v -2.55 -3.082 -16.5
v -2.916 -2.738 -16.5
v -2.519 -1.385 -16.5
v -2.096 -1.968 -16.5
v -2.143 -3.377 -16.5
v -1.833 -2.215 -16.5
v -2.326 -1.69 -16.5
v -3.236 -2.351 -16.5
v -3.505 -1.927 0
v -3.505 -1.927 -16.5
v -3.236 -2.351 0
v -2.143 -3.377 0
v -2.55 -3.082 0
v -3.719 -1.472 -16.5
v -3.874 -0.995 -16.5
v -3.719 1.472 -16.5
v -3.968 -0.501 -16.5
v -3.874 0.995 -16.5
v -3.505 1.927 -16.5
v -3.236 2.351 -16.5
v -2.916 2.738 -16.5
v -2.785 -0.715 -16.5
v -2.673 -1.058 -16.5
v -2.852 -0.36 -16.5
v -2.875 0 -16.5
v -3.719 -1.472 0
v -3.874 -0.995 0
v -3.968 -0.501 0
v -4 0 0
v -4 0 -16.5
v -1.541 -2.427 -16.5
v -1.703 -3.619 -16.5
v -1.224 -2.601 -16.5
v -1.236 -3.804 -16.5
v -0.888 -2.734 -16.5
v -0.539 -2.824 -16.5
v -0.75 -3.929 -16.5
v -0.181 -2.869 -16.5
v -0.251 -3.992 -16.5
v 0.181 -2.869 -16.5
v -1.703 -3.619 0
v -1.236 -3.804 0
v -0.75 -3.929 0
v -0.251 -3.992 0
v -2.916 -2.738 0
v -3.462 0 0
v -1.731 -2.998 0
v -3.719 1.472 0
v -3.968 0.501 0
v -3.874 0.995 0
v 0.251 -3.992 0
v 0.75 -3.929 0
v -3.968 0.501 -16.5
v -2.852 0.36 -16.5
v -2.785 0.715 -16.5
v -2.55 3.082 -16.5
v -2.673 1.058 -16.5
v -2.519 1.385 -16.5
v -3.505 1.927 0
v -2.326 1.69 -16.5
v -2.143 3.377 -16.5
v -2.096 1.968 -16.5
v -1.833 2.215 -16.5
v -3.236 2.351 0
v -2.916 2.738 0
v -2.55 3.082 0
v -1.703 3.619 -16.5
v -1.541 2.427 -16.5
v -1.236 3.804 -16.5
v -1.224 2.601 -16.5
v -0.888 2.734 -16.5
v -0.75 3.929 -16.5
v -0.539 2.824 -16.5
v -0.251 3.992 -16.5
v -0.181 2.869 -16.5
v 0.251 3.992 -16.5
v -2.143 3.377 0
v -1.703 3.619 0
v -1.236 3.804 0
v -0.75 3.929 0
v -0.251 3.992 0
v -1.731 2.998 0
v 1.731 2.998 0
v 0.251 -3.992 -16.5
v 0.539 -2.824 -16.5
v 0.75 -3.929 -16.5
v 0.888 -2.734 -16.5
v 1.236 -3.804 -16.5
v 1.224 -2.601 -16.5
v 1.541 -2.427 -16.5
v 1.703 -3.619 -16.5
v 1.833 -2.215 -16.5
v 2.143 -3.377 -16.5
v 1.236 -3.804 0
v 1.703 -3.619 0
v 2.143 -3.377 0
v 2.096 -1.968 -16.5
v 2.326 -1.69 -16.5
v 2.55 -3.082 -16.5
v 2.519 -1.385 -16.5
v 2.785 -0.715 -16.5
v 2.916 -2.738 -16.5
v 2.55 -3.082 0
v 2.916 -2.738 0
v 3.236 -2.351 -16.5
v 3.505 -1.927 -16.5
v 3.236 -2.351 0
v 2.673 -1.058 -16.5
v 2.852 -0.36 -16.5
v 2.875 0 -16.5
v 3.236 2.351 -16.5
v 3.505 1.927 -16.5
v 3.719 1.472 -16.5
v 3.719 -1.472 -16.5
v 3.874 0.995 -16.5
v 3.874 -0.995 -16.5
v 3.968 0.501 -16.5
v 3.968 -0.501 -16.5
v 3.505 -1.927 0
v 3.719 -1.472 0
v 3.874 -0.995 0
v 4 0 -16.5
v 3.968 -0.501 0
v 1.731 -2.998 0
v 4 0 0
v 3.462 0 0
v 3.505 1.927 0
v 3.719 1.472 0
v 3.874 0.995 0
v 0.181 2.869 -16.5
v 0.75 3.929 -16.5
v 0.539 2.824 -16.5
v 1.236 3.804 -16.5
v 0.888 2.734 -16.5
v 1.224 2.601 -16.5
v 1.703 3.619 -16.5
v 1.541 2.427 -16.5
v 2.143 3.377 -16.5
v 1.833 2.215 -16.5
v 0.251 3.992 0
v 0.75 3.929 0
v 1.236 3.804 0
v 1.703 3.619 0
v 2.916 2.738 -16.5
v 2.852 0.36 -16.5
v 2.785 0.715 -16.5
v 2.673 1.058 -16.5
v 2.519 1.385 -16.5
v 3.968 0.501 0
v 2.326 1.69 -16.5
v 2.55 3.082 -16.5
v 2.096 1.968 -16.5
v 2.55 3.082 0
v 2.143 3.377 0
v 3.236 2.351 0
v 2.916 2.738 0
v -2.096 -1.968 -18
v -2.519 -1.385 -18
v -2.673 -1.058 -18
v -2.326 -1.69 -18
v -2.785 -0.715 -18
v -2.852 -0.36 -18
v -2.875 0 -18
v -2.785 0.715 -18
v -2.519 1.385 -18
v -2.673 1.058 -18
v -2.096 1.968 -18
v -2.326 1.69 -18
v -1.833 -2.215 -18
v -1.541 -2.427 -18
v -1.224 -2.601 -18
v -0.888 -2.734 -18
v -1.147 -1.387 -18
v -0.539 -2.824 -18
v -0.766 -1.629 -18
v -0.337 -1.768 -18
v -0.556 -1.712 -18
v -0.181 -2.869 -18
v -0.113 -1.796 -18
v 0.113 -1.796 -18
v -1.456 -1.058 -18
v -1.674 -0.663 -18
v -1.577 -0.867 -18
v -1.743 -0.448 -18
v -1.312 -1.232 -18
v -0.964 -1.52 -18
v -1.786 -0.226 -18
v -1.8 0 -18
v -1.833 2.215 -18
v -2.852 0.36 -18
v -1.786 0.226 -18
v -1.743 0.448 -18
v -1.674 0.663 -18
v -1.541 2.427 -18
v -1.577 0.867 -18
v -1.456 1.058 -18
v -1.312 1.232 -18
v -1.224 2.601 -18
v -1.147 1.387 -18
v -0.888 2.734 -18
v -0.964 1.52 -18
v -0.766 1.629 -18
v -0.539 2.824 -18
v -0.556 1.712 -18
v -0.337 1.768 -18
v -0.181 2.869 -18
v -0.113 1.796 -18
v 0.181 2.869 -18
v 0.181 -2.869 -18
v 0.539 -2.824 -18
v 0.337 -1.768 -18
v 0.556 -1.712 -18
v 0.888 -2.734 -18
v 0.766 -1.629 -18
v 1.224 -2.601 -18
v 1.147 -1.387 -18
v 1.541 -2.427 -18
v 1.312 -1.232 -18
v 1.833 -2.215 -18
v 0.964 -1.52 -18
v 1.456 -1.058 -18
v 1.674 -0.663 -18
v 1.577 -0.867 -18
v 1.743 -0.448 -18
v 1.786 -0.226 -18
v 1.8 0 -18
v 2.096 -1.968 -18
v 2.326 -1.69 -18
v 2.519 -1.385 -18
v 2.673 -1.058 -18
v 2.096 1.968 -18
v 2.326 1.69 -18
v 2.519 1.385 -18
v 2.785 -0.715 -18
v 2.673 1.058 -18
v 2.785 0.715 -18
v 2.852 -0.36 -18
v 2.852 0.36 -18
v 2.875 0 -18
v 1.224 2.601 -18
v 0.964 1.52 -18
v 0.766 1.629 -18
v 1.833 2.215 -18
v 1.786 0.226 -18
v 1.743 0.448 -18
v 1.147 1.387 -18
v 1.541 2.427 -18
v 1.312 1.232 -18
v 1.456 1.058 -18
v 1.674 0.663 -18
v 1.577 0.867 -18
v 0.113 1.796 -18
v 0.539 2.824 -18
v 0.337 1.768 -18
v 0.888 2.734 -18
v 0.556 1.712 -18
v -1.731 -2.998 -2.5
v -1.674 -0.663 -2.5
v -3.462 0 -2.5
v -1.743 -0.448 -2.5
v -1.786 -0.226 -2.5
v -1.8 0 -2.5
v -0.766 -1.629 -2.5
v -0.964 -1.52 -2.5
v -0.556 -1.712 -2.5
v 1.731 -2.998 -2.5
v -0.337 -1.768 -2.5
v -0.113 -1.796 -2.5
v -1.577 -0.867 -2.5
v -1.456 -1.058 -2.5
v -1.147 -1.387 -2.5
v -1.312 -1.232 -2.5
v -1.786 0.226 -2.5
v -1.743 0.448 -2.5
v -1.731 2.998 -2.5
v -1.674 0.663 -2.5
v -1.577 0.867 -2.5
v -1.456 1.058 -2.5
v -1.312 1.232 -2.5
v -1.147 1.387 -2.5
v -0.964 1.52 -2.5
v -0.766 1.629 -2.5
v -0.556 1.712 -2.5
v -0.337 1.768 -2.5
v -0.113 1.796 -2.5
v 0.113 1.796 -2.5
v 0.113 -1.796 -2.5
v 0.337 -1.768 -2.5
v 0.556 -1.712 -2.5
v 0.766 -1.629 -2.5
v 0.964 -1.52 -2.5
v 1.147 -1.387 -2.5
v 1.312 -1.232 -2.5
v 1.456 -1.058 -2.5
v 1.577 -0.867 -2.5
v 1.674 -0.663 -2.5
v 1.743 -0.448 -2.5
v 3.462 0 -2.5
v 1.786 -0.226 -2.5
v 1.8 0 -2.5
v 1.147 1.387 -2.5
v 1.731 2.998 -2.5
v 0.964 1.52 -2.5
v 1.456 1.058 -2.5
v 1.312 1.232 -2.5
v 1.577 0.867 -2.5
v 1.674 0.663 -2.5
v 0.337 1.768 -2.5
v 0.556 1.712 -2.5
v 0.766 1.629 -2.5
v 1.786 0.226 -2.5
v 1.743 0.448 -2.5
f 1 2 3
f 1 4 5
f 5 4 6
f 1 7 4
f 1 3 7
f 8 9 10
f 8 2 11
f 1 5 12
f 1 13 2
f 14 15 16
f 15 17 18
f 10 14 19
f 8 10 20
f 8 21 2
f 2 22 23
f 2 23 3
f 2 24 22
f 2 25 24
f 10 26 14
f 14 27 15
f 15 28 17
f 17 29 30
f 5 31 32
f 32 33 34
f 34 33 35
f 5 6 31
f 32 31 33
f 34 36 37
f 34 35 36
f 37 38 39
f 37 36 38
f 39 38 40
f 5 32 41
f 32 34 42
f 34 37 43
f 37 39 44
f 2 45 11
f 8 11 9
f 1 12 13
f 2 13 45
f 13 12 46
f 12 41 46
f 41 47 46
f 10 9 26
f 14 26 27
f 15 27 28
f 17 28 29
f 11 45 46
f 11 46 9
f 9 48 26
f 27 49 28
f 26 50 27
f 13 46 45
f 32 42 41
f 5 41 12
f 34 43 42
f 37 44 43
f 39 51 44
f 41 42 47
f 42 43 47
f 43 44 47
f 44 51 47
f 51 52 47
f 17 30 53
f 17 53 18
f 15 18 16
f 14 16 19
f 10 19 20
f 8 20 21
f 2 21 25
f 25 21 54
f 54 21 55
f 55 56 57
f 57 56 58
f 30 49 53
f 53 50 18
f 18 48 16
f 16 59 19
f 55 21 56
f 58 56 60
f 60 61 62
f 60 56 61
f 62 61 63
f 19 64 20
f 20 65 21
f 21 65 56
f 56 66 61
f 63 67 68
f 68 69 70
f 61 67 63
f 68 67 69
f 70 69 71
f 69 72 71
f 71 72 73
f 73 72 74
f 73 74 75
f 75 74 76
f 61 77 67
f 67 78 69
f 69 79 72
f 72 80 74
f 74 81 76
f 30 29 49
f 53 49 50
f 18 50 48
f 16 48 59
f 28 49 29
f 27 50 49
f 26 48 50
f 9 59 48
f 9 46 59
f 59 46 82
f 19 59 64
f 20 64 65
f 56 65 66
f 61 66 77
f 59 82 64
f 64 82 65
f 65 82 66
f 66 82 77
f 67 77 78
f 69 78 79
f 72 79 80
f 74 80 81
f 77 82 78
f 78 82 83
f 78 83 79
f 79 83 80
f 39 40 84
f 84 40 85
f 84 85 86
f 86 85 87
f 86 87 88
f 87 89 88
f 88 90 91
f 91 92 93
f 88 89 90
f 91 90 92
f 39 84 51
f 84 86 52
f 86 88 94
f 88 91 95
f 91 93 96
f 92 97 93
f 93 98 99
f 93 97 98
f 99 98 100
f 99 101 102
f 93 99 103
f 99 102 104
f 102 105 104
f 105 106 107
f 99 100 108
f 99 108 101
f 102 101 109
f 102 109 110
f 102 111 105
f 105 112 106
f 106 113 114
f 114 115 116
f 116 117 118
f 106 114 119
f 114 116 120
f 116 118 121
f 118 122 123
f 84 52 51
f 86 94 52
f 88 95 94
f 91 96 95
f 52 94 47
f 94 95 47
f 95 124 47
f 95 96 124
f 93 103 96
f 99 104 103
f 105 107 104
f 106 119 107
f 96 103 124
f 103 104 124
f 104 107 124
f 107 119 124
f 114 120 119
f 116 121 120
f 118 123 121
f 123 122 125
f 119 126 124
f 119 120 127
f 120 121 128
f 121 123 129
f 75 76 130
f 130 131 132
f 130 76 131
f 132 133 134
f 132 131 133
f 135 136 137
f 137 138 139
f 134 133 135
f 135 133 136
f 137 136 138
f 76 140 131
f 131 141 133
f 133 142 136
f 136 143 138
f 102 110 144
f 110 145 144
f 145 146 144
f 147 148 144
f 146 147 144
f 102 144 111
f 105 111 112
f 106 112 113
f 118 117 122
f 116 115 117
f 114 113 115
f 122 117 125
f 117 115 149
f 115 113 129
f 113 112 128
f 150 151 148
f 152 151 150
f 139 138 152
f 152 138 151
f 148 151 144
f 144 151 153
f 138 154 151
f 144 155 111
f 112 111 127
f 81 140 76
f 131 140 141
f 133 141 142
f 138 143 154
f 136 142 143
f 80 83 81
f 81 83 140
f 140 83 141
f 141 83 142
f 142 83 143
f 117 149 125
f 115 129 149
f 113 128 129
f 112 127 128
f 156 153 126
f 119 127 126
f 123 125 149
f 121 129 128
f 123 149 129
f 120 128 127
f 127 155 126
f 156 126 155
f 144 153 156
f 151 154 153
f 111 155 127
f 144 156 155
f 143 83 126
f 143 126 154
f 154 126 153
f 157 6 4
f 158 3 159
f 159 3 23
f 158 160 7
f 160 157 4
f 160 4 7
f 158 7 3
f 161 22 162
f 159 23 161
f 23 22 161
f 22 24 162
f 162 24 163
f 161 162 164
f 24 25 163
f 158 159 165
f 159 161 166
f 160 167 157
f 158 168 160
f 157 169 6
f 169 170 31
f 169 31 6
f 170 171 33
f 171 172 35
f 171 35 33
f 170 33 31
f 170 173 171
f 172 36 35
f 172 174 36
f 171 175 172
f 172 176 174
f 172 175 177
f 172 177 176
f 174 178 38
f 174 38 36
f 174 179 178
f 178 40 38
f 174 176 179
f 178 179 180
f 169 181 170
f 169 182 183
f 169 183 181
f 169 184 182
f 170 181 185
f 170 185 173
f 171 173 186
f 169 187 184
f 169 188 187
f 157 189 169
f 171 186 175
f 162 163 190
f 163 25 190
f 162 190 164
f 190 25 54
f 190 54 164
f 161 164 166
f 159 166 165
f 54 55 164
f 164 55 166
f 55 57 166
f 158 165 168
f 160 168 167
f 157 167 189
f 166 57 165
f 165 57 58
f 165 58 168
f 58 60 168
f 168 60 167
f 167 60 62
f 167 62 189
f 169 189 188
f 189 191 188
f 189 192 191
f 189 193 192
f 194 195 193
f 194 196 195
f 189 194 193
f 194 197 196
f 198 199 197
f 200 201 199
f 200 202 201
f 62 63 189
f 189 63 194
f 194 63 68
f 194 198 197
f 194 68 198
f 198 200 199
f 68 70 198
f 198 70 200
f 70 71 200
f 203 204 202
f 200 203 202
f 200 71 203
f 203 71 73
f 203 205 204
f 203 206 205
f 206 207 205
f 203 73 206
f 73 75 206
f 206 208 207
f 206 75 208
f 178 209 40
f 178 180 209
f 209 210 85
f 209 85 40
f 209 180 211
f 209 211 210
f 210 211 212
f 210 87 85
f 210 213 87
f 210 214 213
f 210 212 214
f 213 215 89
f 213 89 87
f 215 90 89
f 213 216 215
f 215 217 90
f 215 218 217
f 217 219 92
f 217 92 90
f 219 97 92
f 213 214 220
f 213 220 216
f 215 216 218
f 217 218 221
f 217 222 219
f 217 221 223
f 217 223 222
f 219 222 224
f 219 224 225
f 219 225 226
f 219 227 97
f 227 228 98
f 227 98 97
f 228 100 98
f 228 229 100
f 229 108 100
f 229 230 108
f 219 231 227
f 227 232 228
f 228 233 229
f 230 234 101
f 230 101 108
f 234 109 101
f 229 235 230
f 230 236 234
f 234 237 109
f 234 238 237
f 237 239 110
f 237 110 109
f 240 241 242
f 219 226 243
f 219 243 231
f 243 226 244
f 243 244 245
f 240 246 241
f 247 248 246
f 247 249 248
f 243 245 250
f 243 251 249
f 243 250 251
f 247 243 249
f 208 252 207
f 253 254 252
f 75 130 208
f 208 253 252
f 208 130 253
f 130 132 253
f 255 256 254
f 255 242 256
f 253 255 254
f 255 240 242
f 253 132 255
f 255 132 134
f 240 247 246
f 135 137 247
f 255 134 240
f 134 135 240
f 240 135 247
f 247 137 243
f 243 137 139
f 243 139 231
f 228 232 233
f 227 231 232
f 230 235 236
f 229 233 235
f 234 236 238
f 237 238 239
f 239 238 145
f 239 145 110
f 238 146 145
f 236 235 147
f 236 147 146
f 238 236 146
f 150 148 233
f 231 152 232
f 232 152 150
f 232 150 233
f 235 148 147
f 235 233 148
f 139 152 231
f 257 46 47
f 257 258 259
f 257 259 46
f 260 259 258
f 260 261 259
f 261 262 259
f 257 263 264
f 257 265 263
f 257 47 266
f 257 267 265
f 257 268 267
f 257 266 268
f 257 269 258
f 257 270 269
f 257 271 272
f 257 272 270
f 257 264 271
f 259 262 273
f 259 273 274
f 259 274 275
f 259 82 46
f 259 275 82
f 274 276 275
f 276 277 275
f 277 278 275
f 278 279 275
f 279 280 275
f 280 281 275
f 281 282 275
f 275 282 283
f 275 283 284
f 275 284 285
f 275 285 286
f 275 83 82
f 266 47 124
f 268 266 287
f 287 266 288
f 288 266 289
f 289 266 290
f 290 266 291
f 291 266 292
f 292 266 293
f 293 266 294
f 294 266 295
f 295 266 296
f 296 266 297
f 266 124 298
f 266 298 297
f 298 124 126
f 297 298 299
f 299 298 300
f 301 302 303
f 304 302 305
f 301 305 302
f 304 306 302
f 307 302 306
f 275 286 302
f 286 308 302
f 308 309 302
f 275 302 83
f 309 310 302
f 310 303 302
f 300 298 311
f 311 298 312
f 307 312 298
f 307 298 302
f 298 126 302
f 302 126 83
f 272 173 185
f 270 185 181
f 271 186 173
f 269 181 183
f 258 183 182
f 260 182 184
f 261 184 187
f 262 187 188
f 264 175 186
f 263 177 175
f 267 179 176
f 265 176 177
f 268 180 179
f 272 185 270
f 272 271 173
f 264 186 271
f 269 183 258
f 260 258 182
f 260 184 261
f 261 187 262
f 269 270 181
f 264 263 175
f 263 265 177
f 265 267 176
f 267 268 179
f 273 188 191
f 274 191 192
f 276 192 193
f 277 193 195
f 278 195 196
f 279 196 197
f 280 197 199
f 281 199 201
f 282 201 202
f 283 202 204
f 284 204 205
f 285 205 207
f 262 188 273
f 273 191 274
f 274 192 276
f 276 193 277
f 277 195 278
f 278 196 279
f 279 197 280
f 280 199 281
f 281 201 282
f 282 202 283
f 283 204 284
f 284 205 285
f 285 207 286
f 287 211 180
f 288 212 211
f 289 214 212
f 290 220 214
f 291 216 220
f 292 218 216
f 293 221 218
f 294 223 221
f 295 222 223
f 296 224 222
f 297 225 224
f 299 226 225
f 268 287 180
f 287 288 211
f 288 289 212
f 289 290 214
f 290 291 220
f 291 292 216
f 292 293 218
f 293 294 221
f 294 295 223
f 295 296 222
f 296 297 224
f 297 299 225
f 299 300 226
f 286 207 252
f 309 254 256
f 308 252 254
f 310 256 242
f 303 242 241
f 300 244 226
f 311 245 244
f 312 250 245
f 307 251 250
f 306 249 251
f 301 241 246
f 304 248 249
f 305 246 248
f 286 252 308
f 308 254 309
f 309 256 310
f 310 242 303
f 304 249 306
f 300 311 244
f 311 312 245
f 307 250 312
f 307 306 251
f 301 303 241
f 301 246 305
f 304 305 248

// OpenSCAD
$fn = 50;

difference() {
	union() {
		translate(v = [0, 0, -16.5]) {
			cylinder(h = 19.5, r = 4.0);
		}
		#translate(v = [0, 0, -18.0]) {
			cylinder(h = 18, r = 2.875);
		}
	}
	union() {
		translate(v = [0, 0, 0]) {
			rotate(a = [0, 0, 0]) {
				difference() {
					union() {
						translate(v = [0, 0, -2.5]) {
							linear_extrude(height = 2.5) {
								polygon(points = [[3.4619999999999997, 0.0], [1.7310000000000003, 2.9981799479017264], [-1.7309999999999992, 2.9981799479017264], [-3.4619999999999997, 4.2397272186481365e-16], [-1.7310000000000014, -2.998179947901726], [1.7309999999999977, -2.9981799479017277]]);
							}
						}
					}
					union();
				}
			}
		}
		#cylinder(h = 3, r = 5.0);
		#translate(v = [0, 0, -100.0]) {
			cylinder(h = 200, r = 1.8);
		}
	}
}
